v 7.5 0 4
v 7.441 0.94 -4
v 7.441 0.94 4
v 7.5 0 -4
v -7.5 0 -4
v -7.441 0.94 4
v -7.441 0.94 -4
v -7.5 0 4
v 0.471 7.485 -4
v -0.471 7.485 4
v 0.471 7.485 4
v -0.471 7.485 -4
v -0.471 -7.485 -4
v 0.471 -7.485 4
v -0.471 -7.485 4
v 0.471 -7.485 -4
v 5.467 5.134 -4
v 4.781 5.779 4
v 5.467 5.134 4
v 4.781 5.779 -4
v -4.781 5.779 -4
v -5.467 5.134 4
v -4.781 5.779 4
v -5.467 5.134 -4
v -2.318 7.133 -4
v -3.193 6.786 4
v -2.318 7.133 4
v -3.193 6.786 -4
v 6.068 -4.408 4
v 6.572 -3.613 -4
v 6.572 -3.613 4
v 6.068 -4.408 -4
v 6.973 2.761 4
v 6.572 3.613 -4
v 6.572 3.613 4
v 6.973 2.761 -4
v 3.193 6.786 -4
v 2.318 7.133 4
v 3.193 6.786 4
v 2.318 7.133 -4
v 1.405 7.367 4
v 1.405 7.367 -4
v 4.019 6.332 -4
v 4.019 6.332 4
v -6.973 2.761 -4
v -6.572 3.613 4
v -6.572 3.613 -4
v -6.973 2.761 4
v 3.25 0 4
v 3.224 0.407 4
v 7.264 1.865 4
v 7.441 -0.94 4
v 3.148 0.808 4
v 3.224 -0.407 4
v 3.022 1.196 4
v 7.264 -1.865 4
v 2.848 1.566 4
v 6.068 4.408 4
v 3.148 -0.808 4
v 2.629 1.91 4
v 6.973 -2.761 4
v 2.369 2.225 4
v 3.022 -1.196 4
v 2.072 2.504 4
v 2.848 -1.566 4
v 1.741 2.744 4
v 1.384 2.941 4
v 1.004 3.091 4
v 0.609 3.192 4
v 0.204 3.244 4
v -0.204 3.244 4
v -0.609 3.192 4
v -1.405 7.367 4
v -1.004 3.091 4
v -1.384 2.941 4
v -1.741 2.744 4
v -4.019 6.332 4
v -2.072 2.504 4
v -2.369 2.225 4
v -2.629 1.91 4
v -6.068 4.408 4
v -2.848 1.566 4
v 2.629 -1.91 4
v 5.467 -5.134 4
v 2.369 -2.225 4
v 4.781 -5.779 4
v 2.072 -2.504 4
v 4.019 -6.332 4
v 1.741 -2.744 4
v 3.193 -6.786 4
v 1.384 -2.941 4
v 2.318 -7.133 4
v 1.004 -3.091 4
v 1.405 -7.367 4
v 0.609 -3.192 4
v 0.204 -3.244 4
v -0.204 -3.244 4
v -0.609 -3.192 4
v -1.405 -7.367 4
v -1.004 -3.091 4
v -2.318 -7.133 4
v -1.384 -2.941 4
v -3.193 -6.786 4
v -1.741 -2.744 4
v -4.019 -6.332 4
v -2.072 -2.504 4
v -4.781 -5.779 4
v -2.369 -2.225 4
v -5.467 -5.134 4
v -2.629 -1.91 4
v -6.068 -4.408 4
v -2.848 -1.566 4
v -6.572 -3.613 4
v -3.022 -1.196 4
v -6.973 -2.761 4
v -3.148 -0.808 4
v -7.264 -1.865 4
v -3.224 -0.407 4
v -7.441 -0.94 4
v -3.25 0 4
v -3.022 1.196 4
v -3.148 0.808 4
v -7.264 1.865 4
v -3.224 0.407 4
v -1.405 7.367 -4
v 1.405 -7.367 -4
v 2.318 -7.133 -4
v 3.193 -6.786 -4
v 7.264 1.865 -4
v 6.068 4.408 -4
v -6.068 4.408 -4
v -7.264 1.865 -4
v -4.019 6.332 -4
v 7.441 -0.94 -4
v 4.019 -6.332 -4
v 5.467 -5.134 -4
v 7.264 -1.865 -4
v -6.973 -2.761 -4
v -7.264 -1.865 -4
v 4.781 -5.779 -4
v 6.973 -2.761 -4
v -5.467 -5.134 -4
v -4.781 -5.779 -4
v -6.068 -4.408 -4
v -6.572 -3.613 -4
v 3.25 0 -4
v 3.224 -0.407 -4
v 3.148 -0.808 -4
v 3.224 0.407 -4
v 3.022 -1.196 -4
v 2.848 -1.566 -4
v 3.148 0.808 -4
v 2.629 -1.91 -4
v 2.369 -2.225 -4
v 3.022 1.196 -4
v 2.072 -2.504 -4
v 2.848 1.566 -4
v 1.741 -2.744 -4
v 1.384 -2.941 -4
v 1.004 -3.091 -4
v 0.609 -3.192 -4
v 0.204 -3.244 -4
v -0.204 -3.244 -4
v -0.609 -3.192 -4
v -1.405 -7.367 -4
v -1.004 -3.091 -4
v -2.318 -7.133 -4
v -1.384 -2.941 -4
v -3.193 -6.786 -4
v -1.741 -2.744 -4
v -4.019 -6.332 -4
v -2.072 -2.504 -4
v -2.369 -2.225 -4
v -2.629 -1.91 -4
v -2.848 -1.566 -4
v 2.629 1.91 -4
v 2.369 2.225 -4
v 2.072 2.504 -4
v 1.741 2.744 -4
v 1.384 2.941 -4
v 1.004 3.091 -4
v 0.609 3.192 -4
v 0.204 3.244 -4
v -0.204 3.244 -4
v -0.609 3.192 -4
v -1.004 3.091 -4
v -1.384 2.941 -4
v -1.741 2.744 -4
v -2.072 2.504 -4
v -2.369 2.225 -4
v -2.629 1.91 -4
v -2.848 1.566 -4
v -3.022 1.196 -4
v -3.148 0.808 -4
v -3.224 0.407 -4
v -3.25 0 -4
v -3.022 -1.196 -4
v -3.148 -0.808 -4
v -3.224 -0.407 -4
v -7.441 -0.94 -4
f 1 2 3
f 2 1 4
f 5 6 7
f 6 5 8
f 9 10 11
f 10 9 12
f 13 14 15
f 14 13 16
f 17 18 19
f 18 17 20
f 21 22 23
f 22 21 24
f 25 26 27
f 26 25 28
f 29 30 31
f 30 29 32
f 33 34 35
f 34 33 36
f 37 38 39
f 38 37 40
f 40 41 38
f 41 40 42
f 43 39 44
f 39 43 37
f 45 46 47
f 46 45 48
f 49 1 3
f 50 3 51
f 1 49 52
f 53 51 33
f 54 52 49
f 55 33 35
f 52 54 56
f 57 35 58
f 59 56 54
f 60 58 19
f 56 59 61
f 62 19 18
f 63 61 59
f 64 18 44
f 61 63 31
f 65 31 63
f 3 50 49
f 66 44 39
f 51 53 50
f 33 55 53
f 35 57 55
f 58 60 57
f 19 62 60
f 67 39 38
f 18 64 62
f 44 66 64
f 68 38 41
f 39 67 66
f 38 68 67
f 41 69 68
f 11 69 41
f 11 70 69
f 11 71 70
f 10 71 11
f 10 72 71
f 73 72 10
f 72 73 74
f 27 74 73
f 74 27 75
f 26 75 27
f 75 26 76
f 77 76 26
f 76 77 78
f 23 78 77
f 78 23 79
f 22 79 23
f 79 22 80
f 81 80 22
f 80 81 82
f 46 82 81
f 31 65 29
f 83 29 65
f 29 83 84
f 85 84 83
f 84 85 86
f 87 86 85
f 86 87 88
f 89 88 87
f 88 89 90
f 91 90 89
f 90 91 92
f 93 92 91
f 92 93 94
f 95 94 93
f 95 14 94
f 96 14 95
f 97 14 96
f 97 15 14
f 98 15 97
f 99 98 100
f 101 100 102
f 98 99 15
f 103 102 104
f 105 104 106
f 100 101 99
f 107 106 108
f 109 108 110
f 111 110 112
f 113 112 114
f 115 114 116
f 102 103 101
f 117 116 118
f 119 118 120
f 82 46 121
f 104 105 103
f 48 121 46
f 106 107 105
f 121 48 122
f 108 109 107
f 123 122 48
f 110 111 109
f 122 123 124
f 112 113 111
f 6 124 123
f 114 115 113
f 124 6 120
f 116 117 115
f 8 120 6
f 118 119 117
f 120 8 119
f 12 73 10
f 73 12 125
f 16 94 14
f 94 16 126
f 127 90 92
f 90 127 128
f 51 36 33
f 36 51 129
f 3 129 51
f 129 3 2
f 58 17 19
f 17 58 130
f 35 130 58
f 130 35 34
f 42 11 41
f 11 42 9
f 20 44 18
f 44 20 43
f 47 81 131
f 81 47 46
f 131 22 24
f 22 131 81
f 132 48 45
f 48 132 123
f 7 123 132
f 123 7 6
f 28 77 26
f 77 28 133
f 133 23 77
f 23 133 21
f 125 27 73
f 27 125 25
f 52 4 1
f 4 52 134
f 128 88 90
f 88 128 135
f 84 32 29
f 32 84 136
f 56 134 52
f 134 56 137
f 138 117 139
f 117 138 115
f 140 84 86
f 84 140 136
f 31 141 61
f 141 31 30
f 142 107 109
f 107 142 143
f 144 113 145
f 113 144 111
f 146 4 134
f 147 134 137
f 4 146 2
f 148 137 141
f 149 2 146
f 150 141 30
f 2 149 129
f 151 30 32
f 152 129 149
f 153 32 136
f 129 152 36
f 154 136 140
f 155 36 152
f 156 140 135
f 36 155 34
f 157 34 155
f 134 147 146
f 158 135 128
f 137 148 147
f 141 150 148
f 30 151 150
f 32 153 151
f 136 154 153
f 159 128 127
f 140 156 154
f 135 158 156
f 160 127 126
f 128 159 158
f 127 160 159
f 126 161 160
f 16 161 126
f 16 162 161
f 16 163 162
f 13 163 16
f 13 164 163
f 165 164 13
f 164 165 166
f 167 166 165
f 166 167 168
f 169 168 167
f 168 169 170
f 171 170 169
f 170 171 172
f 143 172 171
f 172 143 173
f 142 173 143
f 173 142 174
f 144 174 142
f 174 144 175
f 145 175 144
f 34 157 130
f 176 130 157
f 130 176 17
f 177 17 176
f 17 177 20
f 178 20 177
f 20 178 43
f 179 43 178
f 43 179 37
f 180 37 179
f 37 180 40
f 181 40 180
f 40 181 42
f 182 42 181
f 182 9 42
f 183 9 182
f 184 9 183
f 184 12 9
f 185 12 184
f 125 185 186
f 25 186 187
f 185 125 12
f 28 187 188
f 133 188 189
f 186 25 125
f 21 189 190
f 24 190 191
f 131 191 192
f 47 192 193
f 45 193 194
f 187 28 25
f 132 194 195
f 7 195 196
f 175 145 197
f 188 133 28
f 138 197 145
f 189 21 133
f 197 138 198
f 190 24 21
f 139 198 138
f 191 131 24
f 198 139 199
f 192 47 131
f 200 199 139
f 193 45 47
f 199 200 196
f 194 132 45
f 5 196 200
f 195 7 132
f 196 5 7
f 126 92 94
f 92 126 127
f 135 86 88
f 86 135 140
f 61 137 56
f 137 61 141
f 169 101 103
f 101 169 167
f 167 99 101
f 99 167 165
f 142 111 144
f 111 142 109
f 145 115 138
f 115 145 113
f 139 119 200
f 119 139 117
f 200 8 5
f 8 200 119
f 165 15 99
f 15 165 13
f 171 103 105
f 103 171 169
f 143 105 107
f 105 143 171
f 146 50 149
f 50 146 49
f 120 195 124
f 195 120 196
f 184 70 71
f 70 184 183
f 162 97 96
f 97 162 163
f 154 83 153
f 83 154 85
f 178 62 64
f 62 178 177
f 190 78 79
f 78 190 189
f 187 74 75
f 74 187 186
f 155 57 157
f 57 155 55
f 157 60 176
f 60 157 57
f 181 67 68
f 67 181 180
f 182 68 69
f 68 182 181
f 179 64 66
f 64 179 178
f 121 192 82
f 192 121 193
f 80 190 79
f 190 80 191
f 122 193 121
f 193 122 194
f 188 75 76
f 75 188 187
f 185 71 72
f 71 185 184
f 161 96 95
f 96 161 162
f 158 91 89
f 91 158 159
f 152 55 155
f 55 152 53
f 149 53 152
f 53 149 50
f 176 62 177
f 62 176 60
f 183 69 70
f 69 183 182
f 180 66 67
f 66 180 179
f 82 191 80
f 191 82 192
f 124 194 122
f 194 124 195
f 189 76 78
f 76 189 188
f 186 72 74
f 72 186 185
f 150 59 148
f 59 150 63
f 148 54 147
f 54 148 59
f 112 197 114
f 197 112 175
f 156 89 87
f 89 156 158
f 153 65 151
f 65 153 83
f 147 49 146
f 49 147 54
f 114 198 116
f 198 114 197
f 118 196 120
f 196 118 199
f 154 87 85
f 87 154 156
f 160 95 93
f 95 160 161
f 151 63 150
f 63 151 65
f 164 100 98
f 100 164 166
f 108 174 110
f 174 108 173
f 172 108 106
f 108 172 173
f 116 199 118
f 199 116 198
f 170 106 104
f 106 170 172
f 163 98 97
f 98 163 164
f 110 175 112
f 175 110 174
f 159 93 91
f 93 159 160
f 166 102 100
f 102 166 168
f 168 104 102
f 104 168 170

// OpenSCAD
$fn = 50;


difference() {
	union() {
		translate(v = [0, 0, -4.0000000000]) {
			cylinder(h = 8, r = 7.5000000000);
		}
	}
	union() {
		translate(v = [0, 0, -100.0000000000]) {
			cylinder(h = 200, r = 3.2500000000);
		}
	}
}
